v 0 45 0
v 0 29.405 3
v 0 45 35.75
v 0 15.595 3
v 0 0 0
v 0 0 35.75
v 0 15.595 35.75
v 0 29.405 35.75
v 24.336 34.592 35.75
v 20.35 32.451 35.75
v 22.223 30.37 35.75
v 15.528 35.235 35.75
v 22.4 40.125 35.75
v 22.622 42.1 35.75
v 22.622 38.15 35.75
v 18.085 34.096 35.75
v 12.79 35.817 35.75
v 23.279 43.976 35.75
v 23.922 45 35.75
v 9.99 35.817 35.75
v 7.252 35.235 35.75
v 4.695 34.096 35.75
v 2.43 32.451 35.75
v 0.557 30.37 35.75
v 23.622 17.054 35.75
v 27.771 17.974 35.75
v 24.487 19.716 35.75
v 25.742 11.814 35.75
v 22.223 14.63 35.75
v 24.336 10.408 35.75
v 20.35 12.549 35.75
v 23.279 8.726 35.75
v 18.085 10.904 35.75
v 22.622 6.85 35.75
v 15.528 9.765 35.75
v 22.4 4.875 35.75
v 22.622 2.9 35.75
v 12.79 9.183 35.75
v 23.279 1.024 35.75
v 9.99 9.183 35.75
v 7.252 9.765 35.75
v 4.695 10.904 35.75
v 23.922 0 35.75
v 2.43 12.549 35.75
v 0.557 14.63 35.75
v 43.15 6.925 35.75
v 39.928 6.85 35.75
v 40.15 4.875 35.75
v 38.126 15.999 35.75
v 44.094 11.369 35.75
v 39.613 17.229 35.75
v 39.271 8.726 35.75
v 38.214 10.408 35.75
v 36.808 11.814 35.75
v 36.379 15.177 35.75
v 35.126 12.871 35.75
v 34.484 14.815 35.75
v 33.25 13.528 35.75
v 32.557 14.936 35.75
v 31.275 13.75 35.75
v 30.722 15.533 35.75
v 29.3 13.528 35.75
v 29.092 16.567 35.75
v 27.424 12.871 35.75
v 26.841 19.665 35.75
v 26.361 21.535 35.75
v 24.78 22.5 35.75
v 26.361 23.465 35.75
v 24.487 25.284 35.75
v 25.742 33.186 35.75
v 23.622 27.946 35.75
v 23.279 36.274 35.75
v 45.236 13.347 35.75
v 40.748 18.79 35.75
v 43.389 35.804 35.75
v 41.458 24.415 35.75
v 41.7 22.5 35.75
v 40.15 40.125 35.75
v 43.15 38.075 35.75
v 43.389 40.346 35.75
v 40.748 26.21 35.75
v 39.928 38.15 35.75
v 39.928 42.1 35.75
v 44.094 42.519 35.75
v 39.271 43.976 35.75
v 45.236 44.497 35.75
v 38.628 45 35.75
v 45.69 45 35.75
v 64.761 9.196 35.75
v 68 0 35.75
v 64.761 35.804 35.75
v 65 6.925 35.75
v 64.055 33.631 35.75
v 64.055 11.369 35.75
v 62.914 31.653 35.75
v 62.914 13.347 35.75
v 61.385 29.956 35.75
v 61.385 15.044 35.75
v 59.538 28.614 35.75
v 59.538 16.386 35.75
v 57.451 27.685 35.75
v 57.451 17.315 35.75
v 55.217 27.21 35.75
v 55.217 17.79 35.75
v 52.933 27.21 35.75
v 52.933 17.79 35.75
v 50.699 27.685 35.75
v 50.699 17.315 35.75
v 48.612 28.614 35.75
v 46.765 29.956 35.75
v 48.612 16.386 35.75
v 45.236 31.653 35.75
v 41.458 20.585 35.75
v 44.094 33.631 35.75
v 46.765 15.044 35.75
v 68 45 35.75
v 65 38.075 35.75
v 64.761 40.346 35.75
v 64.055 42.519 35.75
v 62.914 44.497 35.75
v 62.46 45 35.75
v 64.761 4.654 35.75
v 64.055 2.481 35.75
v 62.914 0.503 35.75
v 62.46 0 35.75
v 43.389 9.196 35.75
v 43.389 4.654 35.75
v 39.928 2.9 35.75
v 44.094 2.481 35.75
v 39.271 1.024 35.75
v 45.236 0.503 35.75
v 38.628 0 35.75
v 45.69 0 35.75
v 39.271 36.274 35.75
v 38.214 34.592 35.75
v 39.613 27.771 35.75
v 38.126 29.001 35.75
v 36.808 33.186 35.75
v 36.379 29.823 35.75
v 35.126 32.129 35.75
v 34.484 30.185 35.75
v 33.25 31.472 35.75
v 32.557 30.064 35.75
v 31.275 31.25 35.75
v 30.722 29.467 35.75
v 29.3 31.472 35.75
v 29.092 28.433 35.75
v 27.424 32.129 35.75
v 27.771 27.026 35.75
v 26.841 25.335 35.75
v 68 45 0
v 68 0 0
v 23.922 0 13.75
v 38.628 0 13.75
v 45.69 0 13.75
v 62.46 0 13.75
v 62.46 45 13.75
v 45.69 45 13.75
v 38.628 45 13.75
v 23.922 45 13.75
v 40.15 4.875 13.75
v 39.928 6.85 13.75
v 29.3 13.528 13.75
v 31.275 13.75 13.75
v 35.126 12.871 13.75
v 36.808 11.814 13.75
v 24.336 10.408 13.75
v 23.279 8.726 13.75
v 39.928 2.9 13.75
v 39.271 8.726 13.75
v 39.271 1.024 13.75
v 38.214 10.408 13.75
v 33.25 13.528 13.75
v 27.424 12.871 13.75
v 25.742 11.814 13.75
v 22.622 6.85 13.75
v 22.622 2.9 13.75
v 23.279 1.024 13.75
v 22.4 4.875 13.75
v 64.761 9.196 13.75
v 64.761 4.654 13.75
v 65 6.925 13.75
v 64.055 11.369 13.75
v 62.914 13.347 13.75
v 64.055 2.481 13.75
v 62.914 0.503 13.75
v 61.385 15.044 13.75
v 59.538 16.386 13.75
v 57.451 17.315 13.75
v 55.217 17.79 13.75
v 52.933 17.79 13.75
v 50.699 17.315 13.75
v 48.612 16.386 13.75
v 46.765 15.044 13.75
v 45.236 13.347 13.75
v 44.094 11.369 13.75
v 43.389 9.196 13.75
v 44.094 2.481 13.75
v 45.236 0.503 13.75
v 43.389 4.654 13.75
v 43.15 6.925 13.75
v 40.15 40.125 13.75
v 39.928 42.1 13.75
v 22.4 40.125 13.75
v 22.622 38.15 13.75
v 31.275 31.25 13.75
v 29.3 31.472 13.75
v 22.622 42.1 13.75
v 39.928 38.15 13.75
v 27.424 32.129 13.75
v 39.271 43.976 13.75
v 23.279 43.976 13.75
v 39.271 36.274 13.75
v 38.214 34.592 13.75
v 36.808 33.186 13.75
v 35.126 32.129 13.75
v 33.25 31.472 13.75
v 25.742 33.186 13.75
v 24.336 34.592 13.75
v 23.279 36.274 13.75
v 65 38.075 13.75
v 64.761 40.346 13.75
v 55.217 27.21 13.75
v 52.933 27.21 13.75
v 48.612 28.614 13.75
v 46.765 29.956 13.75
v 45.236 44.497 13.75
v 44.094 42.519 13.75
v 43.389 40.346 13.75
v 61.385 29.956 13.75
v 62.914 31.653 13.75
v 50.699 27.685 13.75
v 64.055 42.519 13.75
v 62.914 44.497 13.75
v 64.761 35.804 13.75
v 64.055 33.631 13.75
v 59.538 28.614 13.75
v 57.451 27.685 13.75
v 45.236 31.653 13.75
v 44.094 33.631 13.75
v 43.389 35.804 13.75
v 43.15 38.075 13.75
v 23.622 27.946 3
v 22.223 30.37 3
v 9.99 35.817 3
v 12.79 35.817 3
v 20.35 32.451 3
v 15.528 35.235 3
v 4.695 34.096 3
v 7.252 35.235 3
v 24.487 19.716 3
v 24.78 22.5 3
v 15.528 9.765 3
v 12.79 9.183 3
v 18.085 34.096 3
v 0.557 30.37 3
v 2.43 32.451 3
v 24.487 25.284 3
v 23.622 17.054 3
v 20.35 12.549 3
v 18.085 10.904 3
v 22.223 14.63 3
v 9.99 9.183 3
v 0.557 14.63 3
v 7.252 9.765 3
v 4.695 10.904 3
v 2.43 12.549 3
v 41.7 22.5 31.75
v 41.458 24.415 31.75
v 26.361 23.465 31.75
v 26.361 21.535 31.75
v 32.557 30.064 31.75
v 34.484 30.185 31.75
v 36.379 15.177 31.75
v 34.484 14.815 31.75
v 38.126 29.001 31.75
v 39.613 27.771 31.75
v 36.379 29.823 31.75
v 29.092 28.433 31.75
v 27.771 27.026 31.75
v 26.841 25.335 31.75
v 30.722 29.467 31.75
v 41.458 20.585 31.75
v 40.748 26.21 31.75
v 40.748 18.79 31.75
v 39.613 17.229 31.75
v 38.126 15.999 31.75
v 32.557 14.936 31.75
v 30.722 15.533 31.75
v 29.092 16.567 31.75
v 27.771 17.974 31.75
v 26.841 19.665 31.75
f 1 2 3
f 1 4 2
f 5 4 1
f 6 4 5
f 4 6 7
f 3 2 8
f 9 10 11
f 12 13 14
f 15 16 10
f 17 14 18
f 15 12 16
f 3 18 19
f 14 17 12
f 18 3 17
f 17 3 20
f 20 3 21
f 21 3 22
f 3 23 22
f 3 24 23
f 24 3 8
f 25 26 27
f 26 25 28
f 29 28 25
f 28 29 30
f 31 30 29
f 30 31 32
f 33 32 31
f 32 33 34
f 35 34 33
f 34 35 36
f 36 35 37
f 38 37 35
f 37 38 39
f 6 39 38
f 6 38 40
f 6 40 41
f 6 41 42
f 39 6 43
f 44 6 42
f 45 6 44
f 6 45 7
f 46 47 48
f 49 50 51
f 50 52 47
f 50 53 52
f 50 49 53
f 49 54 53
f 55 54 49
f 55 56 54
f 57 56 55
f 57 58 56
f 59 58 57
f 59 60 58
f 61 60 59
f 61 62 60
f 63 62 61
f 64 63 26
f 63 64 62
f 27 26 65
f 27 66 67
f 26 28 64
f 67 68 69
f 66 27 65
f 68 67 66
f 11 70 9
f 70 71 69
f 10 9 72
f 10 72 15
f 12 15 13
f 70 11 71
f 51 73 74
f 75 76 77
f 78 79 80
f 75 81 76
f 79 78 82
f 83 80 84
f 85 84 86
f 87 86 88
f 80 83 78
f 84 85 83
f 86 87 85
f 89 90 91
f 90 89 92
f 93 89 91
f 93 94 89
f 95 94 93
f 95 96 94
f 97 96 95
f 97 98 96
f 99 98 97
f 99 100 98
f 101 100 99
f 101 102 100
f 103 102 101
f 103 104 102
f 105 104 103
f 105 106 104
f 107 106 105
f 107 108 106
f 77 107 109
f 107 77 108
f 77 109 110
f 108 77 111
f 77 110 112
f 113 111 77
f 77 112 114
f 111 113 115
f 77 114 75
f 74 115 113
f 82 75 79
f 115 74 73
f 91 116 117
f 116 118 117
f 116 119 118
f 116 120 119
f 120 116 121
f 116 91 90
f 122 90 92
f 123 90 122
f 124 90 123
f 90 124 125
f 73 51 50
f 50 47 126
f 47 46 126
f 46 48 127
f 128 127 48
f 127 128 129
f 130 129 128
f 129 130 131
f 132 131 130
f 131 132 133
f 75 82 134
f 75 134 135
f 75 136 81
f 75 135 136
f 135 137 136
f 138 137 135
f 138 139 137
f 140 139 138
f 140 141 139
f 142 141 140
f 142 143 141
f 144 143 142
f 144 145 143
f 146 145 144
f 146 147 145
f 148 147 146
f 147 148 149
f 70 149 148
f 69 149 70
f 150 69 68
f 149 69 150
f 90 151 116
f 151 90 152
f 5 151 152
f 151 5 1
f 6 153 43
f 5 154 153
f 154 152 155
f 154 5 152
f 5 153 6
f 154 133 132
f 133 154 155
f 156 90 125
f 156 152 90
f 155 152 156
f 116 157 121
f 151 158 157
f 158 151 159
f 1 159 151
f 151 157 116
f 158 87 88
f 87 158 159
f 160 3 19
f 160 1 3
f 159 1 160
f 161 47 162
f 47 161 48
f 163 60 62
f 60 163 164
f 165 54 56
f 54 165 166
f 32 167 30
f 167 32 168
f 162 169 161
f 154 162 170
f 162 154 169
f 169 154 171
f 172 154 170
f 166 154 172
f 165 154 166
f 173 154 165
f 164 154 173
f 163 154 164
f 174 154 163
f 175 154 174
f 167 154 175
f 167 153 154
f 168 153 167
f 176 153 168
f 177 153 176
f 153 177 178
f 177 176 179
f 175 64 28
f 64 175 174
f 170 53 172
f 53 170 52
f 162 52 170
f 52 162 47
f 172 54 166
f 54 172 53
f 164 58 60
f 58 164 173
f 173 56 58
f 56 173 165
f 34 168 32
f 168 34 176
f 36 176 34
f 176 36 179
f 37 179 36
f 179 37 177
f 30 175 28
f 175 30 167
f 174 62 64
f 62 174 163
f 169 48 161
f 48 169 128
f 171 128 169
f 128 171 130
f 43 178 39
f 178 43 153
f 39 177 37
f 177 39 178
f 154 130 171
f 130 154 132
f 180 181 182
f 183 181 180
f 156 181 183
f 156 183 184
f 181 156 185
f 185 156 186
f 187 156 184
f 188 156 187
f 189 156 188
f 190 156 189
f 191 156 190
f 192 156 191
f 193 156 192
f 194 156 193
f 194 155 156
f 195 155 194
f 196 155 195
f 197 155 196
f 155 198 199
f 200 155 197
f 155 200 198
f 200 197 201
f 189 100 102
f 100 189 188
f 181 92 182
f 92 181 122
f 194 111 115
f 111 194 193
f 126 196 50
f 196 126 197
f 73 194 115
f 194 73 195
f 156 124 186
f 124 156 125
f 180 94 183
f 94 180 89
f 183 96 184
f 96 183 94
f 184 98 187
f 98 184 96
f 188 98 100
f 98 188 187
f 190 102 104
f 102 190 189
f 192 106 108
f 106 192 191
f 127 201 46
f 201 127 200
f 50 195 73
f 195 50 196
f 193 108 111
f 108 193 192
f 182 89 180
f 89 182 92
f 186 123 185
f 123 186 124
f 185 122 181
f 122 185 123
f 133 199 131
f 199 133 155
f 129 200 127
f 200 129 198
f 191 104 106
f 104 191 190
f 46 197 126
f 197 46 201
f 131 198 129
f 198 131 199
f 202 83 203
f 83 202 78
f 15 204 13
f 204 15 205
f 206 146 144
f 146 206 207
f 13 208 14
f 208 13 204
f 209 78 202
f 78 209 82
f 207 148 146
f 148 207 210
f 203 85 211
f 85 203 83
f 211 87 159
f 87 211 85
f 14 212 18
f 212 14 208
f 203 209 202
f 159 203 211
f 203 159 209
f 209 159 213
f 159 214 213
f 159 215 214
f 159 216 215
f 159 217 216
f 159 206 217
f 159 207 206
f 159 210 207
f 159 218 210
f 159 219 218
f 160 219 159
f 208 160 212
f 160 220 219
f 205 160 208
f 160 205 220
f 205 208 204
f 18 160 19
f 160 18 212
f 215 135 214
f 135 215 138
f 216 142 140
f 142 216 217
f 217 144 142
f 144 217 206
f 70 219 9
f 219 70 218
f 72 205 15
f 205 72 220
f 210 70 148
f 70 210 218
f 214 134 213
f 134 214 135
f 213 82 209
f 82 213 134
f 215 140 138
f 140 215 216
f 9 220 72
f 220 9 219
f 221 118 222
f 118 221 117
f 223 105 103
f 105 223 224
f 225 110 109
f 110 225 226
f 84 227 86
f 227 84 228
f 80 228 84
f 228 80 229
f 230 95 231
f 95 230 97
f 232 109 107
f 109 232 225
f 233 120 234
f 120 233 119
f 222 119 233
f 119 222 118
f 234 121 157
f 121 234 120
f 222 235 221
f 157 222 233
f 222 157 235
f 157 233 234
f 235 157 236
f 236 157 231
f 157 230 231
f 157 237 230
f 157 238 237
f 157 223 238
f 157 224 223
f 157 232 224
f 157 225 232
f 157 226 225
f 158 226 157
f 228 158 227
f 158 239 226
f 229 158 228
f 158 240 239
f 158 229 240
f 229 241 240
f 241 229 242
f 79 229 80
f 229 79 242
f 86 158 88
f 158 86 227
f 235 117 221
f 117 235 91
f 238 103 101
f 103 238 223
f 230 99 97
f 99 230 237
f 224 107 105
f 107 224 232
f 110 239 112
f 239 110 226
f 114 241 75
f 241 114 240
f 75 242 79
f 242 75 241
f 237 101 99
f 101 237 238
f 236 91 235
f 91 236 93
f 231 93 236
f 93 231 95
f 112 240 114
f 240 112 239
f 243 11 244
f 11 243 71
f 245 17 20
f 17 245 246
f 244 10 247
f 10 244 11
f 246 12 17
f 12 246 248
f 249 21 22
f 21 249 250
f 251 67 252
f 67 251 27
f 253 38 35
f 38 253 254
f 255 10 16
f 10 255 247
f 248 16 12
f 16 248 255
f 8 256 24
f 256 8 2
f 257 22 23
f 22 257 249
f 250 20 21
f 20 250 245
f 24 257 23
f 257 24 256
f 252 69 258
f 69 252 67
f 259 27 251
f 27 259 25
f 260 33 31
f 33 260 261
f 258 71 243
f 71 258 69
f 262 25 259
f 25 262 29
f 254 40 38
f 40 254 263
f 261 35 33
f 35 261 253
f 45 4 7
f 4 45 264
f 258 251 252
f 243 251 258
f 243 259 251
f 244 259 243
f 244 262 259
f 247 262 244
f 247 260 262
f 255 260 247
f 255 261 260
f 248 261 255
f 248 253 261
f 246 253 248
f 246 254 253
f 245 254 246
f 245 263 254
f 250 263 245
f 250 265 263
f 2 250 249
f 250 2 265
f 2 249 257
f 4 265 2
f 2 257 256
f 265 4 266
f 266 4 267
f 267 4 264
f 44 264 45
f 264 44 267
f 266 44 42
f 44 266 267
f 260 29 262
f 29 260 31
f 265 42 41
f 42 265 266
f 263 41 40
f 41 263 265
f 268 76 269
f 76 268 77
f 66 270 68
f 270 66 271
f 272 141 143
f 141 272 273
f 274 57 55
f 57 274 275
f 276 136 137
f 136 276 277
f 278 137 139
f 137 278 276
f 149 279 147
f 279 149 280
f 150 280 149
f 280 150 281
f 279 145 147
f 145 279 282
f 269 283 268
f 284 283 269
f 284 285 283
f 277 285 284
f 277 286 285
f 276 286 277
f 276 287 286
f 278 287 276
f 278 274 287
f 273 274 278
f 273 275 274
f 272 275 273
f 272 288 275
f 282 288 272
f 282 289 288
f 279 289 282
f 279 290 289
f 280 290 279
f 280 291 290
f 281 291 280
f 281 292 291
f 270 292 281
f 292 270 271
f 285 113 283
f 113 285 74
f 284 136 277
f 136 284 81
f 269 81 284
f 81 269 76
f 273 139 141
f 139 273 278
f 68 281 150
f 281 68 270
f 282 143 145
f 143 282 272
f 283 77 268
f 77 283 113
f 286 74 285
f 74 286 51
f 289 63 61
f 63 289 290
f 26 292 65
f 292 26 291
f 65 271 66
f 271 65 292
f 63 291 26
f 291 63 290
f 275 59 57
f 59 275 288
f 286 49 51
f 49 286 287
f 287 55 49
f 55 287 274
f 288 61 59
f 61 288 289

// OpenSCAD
length = 68;
width = 45;


//Based on magnet size:
magnetBaseInnerDiameter = 15.4;
magnetHeight = 4.0;

//coins
//			Ones diameter 17.25
//			Fives diameter 21.35
//			Twenty fives diameter 26.28
//			20 1's
//			20 5's
//			15 25's

smallCircleDiameter = 17.25 + .5;
smallCircleOffset = 4;
smallCircleHeight = (10 * 2.15) + .5;

mediumCircleDiameter = 21.35 + .5;
mediumCircleOffset = 4;
mediumCircleHeight = (10 * 2.15) + .5;

largeCircleDiameter = 26.28 + .5;
largeCircleOffset = 5;
largeCircleHeight = (15 * 2.15) + .5;
floorThickness = 3;
height = largeCircleHeight + floorThickness;

spaceBetweenCircles = 3;

difference(){
    cube([length, width, height]);

    translate([length - (mediumCircleDiameter + spaceBetweenCircles * 2 + smallCircleDiameter/2), smallCircleDiameter/2 - smallCircleOffset, height - smallCircleHeight])
        cylinder(smallCircleHeight, d=smallCircleDiameter);


    
    
    
    translate([length - (mediumCircleDiameter/2 + spaceBetweenCircles), mediumCircleDiameter/2 - mediumCircleOffset, height - mediumCircleHeight])
        cylinder(mediumCircleHeight, d=mediumCircleDiameter);
    
    
    
    
    translate([length - (mediumCircleDiameter + spaceBetweenCircles * 2 + smallCircleDiameter/2), width - (smallCircleDiameter/2 - smallCircleOffset), height - smallCircleHeight])
        cylinder(smallCircleHeight, d=smallCircleDiameter);


    
    translate([length - (mediumCircleDiameter/2 + spaceBetweenCircles), width - (mediumCircleDiameter/2 - mediumCircleOffset), height - mediumCircleHeight])
        cylinder(mediumCircleHeight, d=mediumCircleDiameter);
    
    


    translate([largeCircleDiameter/2 + spaceBetweenCircles - largeCircleOffset, width/2, height - largeCircleHeight])
        cylinder(largeCircleHeight, d=largeCircleDiameter);


        
    translate([length/2, width/2, height - magnetHeight])
        cylinder(magnetHeight, d=magnetBaseInnerDiameter);
        

}
